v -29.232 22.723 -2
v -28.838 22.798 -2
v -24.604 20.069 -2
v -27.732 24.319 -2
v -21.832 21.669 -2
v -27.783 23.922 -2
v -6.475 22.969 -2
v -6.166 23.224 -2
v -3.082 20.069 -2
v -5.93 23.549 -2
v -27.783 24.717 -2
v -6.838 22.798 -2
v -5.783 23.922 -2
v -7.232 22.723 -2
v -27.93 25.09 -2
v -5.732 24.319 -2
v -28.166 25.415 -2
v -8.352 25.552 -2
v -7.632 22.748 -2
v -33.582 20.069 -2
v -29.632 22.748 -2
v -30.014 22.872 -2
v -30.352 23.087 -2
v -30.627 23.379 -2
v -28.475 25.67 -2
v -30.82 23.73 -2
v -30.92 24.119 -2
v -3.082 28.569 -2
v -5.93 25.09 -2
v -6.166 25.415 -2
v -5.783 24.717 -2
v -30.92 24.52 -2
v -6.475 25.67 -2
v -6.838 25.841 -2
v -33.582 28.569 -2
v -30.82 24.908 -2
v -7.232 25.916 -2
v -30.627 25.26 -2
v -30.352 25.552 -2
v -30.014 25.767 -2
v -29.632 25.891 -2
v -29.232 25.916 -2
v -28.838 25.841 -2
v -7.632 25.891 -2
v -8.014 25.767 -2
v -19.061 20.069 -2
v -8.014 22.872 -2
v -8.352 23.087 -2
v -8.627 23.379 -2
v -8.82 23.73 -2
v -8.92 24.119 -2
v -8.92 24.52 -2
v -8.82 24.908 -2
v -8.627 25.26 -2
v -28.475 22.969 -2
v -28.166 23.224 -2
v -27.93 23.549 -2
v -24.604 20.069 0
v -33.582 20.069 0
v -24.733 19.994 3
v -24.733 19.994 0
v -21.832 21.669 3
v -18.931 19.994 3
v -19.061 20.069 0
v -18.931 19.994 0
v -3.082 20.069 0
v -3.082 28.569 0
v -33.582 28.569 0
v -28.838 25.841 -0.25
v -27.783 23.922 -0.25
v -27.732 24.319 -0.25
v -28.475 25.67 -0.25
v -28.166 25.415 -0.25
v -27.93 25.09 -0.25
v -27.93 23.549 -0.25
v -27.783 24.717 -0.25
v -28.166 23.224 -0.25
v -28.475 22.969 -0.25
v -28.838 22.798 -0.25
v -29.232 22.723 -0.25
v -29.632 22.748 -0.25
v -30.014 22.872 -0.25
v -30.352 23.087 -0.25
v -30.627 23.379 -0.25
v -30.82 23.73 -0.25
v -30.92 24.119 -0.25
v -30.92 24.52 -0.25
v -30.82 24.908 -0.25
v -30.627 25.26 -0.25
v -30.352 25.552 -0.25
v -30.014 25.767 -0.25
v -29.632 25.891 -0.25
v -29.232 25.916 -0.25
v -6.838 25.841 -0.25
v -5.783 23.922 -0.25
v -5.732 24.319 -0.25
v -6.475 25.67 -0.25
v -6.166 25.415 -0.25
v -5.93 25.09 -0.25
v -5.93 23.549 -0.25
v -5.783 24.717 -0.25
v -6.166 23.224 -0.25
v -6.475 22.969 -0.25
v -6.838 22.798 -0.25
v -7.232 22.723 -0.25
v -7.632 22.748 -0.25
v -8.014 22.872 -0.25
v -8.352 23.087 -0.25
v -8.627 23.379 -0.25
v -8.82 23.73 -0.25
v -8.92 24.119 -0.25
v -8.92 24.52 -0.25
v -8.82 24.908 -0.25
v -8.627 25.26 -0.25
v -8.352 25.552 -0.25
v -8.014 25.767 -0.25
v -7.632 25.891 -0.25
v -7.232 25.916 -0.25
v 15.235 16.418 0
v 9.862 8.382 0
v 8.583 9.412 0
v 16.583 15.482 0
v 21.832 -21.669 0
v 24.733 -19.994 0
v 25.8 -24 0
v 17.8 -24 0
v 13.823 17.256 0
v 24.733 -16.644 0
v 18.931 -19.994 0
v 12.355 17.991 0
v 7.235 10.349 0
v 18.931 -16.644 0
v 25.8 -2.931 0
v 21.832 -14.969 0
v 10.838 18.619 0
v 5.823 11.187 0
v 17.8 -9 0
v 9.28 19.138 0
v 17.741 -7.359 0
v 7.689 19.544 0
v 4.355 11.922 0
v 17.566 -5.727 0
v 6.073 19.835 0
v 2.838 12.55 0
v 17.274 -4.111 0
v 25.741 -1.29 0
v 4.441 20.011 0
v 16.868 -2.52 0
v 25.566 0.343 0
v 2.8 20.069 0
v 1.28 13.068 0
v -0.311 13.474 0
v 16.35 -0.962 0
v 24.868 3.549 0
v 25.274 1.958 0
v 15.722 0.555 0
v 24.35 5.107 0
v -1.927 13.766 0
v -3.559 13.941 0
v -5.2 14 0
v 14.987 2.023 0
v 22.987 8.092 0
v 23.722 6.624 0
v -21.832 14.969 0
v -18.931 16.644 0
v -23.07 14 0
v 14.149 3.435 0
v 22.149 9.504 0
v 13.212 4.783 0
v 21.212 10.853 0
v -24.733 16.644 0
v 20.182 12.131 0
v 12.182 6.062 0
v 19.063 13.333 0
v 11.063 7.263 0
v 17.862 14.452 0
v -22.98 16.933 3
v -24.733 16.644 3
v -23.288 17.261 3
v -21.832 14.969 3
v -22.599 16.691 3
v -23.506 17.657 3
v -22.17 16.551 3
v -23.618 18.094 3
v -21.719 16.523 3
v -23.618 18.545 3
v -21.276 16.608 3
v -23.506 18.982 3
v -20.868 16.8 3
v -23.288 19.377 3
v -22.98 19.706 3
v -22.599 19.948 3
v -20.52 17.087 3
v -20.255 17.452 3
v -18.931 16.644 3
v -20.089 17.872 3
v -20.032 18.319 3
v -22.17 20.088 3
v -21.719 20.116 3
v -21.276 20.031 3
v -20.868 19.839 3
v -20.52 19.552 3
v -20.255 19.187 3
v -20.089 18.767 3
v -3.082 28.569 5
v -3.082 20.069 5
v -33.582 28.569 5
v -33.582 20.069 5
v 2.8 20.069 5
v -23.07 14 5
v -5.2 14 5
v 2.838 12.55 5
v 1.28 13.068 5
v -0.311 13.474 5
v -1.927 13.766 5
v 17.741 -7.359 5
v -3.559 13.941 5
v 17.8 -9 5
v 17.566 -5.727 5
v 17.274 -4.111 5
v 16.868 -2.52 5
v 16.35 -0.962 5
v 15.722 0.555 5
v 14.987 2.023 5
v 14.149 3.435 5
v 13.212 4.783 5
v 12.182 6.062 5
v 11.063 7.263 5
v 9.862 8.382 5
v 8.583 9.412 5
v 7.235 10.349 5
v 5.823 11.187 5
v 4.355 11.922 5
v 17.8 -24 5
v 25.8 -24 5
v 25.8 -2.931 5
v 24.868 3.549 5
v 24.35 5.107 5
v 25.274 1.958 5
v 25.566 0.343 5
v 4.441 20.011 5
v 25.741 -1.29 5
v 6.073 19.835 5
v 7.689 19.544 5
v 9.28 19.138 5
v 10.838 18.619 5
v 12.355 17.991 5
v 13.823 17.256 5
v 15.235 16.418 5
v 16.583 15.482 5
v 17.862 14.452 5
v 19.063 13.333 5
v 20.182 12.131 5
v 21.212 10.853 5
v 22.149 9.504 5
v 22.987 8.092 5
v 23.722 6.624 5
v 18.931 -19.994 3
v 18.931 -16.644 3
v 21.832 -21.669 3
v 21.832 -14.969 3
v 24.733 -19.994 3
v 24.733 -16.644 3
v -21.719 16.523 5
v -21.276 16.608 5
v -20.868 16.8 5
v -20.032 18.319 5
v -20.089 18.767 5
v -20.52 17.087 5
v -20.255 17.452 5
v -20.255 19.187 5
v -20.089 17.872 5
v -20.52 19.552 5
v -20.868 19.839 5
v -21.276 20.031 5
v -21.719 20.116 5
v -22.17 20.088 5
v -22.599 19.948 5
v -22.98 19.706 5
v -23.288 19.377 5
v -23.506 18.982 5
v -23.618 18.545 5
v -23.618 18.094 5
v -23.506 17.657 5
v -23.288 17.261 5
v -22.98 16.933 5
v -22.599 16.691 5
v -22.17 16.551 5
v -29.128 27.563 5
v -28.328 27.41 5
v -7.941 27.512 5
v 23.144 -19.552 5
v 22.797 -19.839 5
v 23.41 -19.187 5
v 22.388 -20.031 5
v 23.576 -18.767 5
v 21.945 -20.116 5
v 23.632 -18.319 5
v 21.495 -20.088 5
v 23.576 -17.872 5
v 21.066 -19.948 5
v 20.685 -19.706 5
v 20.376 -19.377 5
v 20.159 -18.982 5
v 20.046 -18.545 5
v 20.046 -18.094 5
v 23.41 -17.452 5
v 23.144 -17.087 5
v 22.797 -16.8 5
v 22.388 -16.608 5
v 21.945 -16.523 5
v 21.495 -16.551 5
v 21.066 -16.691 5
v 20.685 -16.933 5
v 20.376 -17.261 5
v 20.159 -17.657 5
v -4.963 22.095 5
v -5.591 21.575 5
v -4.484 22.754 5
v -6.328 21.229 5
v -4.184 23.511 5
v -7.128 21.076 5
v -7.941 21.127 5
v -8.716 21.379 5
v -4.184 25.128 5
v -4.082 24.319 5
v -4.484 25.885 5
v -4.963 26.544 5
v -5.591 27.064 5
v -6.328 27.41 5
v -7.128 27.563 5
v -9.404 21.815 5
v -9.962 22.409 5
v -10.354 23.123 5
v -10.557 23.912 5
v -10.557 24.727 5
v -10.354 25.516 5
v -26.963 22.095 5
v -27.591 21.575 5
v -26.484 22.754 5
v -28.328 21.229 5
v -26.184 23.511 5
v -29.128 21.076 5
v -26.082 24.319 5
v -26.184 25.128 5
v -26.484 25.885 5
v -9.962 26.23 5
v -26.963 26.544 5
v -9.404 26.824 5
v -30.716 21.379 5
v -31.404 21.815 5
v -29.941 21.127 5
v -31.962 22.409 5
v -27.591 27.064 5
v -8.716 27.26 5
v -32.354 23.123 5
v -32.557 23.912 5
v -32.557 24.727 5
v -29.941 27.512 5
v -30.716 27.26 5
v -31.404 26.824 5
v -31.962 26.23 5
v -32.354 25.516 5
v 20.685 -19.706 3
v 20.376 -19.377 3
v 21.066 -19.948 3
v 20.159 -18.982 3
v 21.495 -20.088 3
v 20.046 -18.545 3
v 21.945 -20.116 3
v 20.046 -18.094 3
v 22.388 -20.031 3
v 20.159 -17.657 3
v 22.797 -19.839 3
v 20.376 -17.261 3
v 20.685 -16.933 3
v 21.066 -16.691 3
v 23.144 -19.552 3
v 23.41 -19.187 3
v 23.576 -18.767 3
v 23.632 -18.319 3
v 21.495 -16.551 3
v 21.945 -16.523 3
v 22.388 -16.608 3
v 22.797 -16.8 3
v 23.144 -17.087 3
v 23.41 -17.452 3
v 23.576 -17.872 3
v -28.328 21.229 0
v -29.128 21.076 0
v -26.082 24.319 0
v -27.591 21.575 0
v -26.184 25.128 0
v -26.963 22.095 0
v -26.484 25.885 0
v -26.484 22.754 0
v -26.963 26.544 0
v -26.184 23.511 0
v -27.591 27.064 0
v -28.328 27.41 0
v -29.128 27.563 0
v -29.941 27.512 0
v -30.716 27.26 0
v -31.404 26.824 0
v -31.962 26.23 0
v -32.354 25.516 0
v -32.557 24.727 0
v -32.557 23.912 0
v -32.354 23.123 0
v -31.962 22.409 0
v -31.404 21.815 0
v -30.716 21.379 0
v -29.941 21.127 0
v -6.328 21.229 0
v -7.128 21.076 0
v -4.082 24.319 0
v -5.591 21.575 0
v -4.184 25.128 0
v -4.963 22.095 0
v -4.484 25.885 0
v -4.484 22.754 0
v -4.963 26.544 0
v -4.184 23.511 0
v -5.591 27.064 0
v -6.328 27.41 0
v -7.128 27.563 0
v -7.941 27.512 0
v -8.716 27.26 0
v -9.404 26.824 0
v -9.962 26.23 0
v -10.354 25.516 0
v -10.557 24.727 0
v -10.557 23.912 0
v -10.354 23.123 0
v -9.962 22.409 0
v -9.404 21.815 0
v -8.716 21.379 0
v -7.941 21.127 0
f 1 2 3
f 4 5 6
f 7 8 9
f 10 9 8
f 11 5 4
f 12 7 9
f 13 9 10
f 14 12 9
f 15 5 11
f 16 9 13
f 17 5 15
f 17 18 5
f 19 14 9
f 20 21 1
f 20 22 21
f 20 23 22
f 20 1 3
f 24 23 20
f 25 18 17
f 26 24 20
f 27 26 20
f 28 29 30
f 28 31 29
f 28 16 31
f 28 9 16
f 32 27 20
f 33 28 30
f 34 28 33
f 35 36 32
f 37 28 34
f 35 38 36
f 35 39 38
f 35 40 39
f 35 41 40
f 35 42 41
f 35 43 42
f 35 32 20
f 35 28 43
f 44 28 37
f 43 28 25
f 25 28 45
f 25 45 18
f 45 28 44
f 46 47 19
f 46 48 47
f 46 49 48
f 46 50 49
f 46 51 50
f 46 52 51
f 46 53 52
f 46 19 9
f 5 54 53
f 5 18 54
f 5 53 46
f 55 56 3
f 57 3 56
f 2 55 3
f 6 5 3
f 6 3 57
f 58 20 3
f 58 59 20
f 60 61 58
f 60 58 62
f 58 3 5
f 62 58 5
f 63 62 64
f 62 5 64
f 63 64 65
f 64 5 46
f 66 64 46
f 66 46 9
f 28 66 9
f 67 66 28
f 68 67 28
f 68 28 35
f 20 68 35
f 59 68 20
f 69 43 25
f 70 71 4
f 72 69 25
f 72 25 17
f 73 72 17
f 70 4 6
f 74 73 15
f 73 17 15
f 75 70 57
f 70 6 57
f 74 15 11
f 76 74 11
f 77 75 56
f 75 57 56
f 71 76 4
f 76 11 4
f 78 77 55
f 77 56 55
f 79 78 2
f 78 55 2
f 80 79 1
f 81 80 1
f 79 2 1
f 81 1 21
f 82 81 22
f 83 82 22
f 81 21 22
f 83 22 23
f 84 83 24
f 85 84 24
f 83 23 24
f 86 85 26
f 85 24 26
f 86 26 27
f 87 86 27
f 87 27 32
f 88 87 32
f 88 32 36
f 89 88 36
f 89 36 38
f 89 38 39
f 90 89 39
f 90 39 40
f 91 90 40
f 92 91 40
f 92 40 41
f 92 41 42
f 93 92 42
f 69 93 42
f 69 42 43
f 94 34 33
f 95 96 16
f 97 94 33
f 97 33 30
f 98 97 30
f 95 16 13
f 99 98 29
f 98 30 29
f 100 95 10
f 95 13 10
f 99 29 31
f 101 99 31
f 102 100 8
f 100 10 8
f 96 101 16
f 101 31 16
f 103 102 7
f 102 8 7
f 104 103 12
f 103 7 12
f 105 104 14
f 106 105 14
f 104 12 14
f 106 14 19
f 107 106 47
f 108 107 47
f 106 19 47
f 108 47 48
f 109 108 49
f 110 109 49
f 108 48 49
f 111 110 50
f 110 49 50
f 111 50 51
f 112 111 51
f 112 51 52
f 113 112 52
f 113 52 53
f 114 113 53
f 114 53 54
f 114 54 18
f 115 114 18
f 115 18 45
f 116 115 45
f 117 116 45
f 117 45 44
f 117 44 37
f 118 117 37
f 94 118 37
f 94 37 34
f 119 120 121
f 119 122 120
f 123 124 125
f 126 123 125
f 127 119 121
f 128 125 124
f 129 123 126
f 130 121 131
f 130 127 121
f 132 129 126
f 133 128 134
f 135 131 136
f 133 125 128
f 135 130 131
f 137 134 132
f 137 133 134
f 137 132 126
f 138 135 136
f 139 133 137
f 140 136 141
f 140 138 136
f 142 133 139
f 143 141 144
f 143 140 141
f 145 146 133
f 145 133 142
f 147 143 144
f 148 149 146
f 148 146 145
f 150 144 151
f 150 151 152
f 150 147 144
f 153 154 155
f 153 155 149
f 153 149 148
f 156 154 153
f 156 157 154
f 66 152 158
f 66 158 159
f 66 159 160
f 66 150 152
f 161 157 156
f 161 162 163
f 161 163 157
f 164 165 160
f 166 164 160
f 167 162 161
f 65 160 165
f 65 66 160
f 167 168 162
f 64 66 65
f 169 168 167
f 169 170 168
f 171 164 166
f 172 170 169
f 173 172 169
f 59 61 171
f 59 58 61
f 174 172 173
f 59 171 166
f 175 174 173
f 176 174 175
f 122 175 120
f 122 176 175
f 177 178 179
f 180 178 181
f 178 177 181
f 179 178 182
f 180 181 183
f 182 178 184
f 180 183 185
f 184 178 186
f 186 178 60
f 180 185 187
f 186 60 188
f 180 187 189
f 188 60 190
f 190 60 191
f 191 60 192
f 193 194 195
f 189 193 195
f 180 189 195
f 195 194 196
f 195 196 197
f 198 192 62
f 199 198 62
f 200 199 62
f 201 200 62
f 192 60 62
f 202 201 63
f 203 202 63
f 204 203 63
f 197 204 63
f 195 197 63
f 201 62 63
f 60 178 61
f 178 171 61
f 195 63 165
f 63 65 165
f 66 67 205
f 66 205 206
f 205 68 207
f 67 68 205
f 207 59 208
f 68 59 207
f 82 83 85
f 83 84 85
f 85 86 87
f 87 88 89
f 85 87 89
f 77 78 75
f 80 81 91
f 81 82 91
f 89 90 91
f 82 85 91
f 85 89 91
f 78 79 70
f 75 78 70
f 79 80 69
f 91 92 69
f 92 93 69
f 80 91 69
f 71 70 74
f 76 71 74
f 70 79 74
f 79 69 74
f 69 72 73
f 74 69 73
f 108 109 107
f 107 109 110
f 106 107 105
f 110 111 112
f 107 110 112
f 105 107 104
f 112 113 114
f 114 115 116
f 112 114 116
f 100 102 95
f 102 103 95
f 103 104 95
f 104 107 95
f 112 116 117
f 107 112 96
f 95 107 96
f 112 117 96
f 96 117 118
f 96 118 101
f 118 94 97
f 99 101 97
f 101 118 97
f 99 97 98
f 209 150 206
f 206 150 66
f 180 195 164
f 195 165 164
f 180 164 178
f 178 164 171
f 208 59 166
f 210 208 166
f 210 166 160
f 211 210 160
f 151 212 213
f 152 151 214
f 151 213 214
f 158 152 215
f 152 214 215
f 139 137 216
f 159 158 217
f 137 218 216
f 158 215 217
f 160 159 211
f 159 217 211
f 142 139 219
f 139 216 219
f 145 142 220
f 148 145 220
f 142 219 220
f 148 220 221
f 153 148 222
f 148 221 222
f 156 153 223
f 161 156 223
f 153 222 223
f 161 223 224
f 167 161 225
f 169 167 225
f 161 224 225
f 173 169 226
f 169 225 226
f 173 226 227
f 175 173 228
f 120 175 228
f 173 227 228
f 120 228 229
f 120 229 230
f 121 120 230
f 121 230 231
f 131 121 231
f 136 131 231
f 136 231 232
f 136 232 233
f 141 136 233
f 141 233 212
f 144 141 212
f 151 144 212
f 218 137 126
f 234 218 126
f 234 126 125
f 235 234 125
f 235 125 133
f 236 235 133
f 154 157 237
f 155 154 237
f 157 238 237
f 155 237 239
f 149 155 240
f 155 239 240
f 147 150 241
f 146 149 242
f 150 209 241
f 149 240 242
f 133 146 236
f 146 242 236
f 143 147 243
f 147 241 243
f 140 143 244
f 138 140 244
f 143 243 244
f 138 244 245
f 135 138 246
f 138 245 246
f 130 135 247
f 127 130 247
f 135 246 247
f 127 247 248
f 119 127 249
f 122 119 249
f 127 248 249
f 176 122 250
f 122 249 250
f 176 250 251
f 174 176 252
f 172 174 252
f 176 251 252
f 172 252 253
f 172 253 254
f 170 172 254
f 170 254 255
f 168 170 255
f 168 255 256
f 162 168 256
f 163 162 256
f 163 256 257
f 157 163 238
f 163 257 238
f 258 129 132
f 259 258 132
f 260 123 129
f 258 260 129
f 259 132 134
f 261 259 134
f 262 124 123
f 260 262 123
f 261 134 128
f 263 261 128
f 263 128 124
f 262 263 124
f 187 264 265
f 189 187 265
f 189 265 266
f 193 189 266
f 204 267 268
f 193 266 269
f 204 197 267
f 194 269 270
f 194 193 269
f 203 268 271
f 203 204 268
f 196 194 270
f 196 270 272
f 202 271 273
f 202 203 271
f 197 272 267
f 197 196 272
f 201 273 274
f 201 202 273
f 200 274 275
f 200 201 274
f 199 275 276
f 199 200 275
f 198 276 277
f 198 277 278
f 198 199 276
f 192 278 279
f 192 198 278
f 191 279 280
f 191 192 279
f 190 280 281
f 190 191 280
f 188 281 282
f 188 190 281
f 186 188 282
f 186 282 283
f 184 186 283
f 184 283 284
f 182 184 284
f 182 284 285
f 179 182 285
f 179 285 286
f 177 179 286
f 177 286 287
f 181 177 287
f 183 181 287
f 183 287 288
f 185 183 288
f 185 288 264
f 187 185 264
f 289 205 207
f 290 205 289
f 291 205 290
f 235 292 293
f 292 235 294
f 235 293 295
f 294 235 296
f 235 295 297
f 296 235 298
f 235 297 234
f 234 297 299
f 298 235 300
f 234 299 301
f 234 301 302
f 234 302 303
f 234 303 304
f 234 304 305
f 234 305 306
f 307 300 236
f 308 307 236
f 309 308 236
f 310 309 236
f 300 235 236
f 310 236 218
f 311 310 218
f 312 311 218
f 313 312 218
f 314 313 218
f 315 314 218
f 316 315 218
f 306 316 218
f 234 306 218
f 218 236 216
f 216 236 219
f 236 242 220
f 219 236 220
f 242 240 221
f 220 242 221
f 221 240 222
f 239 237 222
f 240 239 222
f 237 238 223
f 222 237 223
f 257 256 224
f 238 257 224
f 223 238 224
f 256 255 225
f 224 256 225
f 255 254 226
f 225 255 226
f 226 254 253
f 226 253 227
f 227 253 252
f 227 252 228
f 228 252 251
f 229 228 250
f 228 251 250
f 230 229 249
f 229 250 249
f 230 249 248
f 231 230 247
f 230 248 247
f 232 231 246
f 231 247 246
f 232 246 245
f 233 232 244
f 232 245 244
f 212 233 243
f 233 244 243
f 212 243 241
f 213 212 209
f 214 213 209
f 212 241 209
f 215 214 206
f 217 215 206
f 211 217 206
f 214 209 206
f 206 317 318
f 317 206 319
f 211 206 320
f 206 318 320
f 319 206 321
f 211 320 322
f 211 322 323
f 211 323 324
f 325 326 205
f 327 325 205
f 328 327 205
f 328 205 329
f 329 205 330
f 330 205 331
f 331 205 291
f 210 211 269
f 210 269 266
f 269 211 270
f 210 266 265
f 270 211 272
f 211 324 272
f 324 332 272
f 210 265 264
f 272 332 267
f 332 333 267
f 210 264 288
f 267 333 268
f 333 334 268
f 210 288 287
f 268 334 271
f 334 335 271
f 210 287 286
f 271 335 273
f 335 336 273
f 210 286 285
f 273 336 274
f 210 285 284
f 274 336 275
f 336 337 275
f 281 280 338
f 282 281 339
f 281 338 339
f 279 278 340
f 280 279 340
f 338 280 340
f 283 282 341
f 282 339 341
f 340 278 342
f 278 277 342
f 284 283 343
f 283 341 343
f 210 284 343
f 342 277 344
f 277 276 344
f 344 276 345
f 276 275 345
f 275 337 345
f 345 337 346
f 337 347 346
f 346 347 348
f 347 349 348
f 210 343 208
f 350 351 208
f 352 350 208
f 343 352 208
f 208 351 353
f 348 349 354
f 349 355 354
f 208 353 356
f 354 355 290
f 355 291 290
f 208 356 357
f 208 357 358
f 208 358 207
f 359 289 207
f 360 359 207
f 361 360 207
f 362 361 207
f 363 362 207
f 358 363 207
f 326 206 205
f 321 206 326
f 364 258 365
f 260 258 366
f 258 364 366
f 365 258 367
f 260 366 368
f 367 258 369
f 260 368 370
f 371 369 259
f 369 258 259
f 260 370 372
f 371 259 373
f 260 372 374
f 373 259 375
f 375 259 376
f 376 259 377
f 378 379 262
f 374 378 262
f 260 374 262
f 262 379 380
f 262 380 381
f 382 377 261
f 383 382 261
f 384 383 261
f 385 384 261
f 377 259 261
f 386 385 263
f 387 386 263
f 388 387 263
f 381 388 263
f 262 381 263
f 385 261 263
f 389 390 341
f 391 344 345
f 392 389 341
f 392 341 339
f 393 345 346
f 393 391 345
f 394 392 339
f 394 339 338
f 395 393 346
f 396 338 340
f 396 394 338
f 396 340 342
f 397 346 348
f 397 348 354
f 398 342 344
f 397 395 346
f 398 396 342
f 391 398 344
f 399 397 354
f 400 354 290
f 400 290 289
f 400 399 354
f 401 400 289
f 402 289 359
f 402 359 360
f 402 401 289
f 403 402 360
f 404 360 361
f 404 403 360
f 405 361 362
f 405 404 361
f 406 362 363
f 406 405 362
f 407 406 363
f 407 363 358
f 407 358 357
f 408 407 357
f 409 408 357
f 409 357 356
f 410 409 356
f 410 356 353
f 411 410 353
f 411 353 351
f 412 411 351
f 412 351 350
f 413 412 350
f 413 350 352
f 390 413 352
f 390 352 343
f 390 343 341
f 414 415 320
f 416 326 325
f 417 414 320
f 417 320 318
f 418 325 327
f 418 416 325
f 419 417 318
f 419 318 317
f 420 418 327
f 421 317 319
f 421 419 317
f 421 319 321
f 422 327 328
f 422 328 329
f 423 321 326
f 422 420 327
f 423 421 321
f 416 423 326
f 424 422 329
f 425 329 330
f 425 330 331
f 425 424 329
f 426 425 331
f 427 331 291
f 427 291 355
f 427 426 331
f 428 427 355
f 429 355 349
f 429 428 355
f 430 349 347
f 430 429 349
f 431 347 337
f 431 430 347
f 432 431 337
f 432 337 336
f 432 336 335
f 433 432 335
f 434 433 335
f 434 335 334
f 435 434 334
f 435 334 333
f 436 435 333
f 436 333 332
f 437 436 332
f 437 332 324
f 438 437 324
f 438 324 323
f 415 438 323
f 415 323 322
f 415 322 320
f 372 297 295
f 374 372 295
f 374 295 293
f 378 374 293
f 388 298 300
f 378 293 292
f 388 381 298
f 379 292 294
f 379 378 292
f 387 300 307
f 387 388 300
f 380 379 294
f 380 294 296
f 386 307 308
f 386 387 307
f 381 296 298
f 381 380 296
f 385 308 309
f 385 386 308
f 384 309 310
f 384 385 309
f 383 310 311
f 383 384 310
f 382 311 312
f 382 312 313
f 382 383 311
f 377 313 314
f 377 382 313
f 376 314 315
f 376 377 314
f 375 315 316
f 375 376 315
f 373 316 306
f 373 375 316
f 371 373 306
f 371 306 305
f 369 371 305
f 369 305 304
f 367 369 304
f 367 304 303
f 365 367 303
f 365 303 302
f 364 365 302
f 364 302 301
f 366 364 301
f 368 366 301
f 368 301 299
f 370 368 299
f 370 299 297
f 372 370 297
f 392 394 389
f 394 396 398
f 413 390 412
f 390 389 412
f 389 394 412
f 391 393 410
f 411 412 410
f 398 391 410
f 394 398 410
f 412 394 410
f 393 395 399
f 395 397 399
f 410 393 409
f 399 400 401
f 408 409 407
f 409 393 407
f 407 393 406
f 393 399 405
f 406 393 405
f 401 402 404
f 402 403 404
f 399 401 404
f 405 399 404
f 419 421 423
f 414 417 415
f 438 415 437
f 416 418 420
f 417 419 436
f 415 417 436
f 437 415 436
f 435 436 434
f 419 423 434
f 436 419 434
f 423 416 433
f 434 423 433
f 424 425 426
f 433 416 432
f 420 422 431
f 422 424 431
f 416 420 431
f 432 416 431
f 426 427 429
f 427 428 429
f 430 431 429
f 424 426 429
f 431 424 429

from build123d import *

# Parameters (mm, degrees)
SKETCH_R        = 3.25
SKETCH_R_2      = 1.8
PAD_DEPTH       = 5
FILLET_R        = 23
SKETCH001_W     = 30.5
SKETCH001_H     = 8.5
PAD001_DEPTH    = 2
SKETCH002_R     = 1.6
POCKET_DEPTH    = 1.75
POCKET001_DEPTH = 3
POCKET002_DEPTH = 5


with BuildPart() as part:
    # Sketch → Pad (new body)
    with BuildSketch(Plane.XY):
        Polygon((-33.582267, 28.569447), (-3.082267, 28.569447), (-3.082267, 20.069447), (25.8, 20.069447), (25.8, -24), (17.8, -24), (17.8, 14), (-23.069676, 14), (-33.582267, 20.069447), align=None)
        with Locations((-29.332267, 24.319447)):
            Circle(SKETCH_R, mode=Mode.SUBTRACT)
        with Locations((-7.332267, 24.319447)):
            Circle(SKETCH_R, mode=Mode.SUBTRACT)
        with Locations((-21.832267, 18.319447)):
            Circle(SKETCH_R_2, mode=Mode.SUBTRACT)
        with Locations((21.832267, -18.319447)):
            Circle(SKETCH_R_2, mode=Mode.SUBTRACT)
    extrude(amount=PAD_DEPTH)

    # Fillet
    fillet_edges = [part.edges().sort_by_distance(p)[0] for p in [
        (25.8, 20.069447, 2.5),
        (17.8, 14, 2.5),
    ]]
    fillet(fillet_edges, radius=FILLET_R)

    # Sketch001 → Pad001 (new body)
    with BuildSketch(Plane(origin=(0, 0, 0), x_dir=(1, 0, 0), z_dir=(0, 0, -1))):
        with Locations((-18.332267, -24.319447)):
            Rectangle(SKETCH001_W, SKETCH001_H)
    extrude(amount=PAD001_DEPTH)

    # Sketch002 → Pocket (cut)
    with BuildSketch(Plane(origin=(0, 0, -2), x_dir=(1, 0, 0), z_dir=(0, 0, -1))):
        with Locations((-29.332267, -24.319447)):
            Circle(SKETCH002_R)
        with Locations((-7.332267, -24.319447)):
            Circle(SKETCH002_R)
    extrude(amount=-POCKET_DEPTH, mode=Mode.SUBTRACT)

    # Sketch003 → Pocket001 (cut)
    with BuildSketch(Plane(origin=(0, 0, 0), x_dir=(1, 0, 0), z_dir=(0, 0, -1))):
        Polygon((24.733452, 16.644447), (24.733452, 19.994447), (21.832267, 21.669447), (18.931082, 19.994447), (18.931082, 16.644447), (21.832267, 14.969447), align=None)
    extrude(amount=-POCKET001_DEPTH, mode=Mode.SUBTRACT)

    # Sketch004 → Pocket002 (cut)
    with BuildSketch(Plane(origin=(0, 0, -2), x_dir=(1, 0, 0), z_dir=(0, 0, -1))):
        Polygon((-18.931082, -19.994447), (-18.931082, -16.644447), (-21.832267, -14.969447), (-24.733452, -16.644447), (-24.733452, -19.994447), (-21.832267, -21.669447), align=None)
    extrude(amount=-POCKET002_DEPTH, mode=Mode.SUBTRACT)


solid = part.part
